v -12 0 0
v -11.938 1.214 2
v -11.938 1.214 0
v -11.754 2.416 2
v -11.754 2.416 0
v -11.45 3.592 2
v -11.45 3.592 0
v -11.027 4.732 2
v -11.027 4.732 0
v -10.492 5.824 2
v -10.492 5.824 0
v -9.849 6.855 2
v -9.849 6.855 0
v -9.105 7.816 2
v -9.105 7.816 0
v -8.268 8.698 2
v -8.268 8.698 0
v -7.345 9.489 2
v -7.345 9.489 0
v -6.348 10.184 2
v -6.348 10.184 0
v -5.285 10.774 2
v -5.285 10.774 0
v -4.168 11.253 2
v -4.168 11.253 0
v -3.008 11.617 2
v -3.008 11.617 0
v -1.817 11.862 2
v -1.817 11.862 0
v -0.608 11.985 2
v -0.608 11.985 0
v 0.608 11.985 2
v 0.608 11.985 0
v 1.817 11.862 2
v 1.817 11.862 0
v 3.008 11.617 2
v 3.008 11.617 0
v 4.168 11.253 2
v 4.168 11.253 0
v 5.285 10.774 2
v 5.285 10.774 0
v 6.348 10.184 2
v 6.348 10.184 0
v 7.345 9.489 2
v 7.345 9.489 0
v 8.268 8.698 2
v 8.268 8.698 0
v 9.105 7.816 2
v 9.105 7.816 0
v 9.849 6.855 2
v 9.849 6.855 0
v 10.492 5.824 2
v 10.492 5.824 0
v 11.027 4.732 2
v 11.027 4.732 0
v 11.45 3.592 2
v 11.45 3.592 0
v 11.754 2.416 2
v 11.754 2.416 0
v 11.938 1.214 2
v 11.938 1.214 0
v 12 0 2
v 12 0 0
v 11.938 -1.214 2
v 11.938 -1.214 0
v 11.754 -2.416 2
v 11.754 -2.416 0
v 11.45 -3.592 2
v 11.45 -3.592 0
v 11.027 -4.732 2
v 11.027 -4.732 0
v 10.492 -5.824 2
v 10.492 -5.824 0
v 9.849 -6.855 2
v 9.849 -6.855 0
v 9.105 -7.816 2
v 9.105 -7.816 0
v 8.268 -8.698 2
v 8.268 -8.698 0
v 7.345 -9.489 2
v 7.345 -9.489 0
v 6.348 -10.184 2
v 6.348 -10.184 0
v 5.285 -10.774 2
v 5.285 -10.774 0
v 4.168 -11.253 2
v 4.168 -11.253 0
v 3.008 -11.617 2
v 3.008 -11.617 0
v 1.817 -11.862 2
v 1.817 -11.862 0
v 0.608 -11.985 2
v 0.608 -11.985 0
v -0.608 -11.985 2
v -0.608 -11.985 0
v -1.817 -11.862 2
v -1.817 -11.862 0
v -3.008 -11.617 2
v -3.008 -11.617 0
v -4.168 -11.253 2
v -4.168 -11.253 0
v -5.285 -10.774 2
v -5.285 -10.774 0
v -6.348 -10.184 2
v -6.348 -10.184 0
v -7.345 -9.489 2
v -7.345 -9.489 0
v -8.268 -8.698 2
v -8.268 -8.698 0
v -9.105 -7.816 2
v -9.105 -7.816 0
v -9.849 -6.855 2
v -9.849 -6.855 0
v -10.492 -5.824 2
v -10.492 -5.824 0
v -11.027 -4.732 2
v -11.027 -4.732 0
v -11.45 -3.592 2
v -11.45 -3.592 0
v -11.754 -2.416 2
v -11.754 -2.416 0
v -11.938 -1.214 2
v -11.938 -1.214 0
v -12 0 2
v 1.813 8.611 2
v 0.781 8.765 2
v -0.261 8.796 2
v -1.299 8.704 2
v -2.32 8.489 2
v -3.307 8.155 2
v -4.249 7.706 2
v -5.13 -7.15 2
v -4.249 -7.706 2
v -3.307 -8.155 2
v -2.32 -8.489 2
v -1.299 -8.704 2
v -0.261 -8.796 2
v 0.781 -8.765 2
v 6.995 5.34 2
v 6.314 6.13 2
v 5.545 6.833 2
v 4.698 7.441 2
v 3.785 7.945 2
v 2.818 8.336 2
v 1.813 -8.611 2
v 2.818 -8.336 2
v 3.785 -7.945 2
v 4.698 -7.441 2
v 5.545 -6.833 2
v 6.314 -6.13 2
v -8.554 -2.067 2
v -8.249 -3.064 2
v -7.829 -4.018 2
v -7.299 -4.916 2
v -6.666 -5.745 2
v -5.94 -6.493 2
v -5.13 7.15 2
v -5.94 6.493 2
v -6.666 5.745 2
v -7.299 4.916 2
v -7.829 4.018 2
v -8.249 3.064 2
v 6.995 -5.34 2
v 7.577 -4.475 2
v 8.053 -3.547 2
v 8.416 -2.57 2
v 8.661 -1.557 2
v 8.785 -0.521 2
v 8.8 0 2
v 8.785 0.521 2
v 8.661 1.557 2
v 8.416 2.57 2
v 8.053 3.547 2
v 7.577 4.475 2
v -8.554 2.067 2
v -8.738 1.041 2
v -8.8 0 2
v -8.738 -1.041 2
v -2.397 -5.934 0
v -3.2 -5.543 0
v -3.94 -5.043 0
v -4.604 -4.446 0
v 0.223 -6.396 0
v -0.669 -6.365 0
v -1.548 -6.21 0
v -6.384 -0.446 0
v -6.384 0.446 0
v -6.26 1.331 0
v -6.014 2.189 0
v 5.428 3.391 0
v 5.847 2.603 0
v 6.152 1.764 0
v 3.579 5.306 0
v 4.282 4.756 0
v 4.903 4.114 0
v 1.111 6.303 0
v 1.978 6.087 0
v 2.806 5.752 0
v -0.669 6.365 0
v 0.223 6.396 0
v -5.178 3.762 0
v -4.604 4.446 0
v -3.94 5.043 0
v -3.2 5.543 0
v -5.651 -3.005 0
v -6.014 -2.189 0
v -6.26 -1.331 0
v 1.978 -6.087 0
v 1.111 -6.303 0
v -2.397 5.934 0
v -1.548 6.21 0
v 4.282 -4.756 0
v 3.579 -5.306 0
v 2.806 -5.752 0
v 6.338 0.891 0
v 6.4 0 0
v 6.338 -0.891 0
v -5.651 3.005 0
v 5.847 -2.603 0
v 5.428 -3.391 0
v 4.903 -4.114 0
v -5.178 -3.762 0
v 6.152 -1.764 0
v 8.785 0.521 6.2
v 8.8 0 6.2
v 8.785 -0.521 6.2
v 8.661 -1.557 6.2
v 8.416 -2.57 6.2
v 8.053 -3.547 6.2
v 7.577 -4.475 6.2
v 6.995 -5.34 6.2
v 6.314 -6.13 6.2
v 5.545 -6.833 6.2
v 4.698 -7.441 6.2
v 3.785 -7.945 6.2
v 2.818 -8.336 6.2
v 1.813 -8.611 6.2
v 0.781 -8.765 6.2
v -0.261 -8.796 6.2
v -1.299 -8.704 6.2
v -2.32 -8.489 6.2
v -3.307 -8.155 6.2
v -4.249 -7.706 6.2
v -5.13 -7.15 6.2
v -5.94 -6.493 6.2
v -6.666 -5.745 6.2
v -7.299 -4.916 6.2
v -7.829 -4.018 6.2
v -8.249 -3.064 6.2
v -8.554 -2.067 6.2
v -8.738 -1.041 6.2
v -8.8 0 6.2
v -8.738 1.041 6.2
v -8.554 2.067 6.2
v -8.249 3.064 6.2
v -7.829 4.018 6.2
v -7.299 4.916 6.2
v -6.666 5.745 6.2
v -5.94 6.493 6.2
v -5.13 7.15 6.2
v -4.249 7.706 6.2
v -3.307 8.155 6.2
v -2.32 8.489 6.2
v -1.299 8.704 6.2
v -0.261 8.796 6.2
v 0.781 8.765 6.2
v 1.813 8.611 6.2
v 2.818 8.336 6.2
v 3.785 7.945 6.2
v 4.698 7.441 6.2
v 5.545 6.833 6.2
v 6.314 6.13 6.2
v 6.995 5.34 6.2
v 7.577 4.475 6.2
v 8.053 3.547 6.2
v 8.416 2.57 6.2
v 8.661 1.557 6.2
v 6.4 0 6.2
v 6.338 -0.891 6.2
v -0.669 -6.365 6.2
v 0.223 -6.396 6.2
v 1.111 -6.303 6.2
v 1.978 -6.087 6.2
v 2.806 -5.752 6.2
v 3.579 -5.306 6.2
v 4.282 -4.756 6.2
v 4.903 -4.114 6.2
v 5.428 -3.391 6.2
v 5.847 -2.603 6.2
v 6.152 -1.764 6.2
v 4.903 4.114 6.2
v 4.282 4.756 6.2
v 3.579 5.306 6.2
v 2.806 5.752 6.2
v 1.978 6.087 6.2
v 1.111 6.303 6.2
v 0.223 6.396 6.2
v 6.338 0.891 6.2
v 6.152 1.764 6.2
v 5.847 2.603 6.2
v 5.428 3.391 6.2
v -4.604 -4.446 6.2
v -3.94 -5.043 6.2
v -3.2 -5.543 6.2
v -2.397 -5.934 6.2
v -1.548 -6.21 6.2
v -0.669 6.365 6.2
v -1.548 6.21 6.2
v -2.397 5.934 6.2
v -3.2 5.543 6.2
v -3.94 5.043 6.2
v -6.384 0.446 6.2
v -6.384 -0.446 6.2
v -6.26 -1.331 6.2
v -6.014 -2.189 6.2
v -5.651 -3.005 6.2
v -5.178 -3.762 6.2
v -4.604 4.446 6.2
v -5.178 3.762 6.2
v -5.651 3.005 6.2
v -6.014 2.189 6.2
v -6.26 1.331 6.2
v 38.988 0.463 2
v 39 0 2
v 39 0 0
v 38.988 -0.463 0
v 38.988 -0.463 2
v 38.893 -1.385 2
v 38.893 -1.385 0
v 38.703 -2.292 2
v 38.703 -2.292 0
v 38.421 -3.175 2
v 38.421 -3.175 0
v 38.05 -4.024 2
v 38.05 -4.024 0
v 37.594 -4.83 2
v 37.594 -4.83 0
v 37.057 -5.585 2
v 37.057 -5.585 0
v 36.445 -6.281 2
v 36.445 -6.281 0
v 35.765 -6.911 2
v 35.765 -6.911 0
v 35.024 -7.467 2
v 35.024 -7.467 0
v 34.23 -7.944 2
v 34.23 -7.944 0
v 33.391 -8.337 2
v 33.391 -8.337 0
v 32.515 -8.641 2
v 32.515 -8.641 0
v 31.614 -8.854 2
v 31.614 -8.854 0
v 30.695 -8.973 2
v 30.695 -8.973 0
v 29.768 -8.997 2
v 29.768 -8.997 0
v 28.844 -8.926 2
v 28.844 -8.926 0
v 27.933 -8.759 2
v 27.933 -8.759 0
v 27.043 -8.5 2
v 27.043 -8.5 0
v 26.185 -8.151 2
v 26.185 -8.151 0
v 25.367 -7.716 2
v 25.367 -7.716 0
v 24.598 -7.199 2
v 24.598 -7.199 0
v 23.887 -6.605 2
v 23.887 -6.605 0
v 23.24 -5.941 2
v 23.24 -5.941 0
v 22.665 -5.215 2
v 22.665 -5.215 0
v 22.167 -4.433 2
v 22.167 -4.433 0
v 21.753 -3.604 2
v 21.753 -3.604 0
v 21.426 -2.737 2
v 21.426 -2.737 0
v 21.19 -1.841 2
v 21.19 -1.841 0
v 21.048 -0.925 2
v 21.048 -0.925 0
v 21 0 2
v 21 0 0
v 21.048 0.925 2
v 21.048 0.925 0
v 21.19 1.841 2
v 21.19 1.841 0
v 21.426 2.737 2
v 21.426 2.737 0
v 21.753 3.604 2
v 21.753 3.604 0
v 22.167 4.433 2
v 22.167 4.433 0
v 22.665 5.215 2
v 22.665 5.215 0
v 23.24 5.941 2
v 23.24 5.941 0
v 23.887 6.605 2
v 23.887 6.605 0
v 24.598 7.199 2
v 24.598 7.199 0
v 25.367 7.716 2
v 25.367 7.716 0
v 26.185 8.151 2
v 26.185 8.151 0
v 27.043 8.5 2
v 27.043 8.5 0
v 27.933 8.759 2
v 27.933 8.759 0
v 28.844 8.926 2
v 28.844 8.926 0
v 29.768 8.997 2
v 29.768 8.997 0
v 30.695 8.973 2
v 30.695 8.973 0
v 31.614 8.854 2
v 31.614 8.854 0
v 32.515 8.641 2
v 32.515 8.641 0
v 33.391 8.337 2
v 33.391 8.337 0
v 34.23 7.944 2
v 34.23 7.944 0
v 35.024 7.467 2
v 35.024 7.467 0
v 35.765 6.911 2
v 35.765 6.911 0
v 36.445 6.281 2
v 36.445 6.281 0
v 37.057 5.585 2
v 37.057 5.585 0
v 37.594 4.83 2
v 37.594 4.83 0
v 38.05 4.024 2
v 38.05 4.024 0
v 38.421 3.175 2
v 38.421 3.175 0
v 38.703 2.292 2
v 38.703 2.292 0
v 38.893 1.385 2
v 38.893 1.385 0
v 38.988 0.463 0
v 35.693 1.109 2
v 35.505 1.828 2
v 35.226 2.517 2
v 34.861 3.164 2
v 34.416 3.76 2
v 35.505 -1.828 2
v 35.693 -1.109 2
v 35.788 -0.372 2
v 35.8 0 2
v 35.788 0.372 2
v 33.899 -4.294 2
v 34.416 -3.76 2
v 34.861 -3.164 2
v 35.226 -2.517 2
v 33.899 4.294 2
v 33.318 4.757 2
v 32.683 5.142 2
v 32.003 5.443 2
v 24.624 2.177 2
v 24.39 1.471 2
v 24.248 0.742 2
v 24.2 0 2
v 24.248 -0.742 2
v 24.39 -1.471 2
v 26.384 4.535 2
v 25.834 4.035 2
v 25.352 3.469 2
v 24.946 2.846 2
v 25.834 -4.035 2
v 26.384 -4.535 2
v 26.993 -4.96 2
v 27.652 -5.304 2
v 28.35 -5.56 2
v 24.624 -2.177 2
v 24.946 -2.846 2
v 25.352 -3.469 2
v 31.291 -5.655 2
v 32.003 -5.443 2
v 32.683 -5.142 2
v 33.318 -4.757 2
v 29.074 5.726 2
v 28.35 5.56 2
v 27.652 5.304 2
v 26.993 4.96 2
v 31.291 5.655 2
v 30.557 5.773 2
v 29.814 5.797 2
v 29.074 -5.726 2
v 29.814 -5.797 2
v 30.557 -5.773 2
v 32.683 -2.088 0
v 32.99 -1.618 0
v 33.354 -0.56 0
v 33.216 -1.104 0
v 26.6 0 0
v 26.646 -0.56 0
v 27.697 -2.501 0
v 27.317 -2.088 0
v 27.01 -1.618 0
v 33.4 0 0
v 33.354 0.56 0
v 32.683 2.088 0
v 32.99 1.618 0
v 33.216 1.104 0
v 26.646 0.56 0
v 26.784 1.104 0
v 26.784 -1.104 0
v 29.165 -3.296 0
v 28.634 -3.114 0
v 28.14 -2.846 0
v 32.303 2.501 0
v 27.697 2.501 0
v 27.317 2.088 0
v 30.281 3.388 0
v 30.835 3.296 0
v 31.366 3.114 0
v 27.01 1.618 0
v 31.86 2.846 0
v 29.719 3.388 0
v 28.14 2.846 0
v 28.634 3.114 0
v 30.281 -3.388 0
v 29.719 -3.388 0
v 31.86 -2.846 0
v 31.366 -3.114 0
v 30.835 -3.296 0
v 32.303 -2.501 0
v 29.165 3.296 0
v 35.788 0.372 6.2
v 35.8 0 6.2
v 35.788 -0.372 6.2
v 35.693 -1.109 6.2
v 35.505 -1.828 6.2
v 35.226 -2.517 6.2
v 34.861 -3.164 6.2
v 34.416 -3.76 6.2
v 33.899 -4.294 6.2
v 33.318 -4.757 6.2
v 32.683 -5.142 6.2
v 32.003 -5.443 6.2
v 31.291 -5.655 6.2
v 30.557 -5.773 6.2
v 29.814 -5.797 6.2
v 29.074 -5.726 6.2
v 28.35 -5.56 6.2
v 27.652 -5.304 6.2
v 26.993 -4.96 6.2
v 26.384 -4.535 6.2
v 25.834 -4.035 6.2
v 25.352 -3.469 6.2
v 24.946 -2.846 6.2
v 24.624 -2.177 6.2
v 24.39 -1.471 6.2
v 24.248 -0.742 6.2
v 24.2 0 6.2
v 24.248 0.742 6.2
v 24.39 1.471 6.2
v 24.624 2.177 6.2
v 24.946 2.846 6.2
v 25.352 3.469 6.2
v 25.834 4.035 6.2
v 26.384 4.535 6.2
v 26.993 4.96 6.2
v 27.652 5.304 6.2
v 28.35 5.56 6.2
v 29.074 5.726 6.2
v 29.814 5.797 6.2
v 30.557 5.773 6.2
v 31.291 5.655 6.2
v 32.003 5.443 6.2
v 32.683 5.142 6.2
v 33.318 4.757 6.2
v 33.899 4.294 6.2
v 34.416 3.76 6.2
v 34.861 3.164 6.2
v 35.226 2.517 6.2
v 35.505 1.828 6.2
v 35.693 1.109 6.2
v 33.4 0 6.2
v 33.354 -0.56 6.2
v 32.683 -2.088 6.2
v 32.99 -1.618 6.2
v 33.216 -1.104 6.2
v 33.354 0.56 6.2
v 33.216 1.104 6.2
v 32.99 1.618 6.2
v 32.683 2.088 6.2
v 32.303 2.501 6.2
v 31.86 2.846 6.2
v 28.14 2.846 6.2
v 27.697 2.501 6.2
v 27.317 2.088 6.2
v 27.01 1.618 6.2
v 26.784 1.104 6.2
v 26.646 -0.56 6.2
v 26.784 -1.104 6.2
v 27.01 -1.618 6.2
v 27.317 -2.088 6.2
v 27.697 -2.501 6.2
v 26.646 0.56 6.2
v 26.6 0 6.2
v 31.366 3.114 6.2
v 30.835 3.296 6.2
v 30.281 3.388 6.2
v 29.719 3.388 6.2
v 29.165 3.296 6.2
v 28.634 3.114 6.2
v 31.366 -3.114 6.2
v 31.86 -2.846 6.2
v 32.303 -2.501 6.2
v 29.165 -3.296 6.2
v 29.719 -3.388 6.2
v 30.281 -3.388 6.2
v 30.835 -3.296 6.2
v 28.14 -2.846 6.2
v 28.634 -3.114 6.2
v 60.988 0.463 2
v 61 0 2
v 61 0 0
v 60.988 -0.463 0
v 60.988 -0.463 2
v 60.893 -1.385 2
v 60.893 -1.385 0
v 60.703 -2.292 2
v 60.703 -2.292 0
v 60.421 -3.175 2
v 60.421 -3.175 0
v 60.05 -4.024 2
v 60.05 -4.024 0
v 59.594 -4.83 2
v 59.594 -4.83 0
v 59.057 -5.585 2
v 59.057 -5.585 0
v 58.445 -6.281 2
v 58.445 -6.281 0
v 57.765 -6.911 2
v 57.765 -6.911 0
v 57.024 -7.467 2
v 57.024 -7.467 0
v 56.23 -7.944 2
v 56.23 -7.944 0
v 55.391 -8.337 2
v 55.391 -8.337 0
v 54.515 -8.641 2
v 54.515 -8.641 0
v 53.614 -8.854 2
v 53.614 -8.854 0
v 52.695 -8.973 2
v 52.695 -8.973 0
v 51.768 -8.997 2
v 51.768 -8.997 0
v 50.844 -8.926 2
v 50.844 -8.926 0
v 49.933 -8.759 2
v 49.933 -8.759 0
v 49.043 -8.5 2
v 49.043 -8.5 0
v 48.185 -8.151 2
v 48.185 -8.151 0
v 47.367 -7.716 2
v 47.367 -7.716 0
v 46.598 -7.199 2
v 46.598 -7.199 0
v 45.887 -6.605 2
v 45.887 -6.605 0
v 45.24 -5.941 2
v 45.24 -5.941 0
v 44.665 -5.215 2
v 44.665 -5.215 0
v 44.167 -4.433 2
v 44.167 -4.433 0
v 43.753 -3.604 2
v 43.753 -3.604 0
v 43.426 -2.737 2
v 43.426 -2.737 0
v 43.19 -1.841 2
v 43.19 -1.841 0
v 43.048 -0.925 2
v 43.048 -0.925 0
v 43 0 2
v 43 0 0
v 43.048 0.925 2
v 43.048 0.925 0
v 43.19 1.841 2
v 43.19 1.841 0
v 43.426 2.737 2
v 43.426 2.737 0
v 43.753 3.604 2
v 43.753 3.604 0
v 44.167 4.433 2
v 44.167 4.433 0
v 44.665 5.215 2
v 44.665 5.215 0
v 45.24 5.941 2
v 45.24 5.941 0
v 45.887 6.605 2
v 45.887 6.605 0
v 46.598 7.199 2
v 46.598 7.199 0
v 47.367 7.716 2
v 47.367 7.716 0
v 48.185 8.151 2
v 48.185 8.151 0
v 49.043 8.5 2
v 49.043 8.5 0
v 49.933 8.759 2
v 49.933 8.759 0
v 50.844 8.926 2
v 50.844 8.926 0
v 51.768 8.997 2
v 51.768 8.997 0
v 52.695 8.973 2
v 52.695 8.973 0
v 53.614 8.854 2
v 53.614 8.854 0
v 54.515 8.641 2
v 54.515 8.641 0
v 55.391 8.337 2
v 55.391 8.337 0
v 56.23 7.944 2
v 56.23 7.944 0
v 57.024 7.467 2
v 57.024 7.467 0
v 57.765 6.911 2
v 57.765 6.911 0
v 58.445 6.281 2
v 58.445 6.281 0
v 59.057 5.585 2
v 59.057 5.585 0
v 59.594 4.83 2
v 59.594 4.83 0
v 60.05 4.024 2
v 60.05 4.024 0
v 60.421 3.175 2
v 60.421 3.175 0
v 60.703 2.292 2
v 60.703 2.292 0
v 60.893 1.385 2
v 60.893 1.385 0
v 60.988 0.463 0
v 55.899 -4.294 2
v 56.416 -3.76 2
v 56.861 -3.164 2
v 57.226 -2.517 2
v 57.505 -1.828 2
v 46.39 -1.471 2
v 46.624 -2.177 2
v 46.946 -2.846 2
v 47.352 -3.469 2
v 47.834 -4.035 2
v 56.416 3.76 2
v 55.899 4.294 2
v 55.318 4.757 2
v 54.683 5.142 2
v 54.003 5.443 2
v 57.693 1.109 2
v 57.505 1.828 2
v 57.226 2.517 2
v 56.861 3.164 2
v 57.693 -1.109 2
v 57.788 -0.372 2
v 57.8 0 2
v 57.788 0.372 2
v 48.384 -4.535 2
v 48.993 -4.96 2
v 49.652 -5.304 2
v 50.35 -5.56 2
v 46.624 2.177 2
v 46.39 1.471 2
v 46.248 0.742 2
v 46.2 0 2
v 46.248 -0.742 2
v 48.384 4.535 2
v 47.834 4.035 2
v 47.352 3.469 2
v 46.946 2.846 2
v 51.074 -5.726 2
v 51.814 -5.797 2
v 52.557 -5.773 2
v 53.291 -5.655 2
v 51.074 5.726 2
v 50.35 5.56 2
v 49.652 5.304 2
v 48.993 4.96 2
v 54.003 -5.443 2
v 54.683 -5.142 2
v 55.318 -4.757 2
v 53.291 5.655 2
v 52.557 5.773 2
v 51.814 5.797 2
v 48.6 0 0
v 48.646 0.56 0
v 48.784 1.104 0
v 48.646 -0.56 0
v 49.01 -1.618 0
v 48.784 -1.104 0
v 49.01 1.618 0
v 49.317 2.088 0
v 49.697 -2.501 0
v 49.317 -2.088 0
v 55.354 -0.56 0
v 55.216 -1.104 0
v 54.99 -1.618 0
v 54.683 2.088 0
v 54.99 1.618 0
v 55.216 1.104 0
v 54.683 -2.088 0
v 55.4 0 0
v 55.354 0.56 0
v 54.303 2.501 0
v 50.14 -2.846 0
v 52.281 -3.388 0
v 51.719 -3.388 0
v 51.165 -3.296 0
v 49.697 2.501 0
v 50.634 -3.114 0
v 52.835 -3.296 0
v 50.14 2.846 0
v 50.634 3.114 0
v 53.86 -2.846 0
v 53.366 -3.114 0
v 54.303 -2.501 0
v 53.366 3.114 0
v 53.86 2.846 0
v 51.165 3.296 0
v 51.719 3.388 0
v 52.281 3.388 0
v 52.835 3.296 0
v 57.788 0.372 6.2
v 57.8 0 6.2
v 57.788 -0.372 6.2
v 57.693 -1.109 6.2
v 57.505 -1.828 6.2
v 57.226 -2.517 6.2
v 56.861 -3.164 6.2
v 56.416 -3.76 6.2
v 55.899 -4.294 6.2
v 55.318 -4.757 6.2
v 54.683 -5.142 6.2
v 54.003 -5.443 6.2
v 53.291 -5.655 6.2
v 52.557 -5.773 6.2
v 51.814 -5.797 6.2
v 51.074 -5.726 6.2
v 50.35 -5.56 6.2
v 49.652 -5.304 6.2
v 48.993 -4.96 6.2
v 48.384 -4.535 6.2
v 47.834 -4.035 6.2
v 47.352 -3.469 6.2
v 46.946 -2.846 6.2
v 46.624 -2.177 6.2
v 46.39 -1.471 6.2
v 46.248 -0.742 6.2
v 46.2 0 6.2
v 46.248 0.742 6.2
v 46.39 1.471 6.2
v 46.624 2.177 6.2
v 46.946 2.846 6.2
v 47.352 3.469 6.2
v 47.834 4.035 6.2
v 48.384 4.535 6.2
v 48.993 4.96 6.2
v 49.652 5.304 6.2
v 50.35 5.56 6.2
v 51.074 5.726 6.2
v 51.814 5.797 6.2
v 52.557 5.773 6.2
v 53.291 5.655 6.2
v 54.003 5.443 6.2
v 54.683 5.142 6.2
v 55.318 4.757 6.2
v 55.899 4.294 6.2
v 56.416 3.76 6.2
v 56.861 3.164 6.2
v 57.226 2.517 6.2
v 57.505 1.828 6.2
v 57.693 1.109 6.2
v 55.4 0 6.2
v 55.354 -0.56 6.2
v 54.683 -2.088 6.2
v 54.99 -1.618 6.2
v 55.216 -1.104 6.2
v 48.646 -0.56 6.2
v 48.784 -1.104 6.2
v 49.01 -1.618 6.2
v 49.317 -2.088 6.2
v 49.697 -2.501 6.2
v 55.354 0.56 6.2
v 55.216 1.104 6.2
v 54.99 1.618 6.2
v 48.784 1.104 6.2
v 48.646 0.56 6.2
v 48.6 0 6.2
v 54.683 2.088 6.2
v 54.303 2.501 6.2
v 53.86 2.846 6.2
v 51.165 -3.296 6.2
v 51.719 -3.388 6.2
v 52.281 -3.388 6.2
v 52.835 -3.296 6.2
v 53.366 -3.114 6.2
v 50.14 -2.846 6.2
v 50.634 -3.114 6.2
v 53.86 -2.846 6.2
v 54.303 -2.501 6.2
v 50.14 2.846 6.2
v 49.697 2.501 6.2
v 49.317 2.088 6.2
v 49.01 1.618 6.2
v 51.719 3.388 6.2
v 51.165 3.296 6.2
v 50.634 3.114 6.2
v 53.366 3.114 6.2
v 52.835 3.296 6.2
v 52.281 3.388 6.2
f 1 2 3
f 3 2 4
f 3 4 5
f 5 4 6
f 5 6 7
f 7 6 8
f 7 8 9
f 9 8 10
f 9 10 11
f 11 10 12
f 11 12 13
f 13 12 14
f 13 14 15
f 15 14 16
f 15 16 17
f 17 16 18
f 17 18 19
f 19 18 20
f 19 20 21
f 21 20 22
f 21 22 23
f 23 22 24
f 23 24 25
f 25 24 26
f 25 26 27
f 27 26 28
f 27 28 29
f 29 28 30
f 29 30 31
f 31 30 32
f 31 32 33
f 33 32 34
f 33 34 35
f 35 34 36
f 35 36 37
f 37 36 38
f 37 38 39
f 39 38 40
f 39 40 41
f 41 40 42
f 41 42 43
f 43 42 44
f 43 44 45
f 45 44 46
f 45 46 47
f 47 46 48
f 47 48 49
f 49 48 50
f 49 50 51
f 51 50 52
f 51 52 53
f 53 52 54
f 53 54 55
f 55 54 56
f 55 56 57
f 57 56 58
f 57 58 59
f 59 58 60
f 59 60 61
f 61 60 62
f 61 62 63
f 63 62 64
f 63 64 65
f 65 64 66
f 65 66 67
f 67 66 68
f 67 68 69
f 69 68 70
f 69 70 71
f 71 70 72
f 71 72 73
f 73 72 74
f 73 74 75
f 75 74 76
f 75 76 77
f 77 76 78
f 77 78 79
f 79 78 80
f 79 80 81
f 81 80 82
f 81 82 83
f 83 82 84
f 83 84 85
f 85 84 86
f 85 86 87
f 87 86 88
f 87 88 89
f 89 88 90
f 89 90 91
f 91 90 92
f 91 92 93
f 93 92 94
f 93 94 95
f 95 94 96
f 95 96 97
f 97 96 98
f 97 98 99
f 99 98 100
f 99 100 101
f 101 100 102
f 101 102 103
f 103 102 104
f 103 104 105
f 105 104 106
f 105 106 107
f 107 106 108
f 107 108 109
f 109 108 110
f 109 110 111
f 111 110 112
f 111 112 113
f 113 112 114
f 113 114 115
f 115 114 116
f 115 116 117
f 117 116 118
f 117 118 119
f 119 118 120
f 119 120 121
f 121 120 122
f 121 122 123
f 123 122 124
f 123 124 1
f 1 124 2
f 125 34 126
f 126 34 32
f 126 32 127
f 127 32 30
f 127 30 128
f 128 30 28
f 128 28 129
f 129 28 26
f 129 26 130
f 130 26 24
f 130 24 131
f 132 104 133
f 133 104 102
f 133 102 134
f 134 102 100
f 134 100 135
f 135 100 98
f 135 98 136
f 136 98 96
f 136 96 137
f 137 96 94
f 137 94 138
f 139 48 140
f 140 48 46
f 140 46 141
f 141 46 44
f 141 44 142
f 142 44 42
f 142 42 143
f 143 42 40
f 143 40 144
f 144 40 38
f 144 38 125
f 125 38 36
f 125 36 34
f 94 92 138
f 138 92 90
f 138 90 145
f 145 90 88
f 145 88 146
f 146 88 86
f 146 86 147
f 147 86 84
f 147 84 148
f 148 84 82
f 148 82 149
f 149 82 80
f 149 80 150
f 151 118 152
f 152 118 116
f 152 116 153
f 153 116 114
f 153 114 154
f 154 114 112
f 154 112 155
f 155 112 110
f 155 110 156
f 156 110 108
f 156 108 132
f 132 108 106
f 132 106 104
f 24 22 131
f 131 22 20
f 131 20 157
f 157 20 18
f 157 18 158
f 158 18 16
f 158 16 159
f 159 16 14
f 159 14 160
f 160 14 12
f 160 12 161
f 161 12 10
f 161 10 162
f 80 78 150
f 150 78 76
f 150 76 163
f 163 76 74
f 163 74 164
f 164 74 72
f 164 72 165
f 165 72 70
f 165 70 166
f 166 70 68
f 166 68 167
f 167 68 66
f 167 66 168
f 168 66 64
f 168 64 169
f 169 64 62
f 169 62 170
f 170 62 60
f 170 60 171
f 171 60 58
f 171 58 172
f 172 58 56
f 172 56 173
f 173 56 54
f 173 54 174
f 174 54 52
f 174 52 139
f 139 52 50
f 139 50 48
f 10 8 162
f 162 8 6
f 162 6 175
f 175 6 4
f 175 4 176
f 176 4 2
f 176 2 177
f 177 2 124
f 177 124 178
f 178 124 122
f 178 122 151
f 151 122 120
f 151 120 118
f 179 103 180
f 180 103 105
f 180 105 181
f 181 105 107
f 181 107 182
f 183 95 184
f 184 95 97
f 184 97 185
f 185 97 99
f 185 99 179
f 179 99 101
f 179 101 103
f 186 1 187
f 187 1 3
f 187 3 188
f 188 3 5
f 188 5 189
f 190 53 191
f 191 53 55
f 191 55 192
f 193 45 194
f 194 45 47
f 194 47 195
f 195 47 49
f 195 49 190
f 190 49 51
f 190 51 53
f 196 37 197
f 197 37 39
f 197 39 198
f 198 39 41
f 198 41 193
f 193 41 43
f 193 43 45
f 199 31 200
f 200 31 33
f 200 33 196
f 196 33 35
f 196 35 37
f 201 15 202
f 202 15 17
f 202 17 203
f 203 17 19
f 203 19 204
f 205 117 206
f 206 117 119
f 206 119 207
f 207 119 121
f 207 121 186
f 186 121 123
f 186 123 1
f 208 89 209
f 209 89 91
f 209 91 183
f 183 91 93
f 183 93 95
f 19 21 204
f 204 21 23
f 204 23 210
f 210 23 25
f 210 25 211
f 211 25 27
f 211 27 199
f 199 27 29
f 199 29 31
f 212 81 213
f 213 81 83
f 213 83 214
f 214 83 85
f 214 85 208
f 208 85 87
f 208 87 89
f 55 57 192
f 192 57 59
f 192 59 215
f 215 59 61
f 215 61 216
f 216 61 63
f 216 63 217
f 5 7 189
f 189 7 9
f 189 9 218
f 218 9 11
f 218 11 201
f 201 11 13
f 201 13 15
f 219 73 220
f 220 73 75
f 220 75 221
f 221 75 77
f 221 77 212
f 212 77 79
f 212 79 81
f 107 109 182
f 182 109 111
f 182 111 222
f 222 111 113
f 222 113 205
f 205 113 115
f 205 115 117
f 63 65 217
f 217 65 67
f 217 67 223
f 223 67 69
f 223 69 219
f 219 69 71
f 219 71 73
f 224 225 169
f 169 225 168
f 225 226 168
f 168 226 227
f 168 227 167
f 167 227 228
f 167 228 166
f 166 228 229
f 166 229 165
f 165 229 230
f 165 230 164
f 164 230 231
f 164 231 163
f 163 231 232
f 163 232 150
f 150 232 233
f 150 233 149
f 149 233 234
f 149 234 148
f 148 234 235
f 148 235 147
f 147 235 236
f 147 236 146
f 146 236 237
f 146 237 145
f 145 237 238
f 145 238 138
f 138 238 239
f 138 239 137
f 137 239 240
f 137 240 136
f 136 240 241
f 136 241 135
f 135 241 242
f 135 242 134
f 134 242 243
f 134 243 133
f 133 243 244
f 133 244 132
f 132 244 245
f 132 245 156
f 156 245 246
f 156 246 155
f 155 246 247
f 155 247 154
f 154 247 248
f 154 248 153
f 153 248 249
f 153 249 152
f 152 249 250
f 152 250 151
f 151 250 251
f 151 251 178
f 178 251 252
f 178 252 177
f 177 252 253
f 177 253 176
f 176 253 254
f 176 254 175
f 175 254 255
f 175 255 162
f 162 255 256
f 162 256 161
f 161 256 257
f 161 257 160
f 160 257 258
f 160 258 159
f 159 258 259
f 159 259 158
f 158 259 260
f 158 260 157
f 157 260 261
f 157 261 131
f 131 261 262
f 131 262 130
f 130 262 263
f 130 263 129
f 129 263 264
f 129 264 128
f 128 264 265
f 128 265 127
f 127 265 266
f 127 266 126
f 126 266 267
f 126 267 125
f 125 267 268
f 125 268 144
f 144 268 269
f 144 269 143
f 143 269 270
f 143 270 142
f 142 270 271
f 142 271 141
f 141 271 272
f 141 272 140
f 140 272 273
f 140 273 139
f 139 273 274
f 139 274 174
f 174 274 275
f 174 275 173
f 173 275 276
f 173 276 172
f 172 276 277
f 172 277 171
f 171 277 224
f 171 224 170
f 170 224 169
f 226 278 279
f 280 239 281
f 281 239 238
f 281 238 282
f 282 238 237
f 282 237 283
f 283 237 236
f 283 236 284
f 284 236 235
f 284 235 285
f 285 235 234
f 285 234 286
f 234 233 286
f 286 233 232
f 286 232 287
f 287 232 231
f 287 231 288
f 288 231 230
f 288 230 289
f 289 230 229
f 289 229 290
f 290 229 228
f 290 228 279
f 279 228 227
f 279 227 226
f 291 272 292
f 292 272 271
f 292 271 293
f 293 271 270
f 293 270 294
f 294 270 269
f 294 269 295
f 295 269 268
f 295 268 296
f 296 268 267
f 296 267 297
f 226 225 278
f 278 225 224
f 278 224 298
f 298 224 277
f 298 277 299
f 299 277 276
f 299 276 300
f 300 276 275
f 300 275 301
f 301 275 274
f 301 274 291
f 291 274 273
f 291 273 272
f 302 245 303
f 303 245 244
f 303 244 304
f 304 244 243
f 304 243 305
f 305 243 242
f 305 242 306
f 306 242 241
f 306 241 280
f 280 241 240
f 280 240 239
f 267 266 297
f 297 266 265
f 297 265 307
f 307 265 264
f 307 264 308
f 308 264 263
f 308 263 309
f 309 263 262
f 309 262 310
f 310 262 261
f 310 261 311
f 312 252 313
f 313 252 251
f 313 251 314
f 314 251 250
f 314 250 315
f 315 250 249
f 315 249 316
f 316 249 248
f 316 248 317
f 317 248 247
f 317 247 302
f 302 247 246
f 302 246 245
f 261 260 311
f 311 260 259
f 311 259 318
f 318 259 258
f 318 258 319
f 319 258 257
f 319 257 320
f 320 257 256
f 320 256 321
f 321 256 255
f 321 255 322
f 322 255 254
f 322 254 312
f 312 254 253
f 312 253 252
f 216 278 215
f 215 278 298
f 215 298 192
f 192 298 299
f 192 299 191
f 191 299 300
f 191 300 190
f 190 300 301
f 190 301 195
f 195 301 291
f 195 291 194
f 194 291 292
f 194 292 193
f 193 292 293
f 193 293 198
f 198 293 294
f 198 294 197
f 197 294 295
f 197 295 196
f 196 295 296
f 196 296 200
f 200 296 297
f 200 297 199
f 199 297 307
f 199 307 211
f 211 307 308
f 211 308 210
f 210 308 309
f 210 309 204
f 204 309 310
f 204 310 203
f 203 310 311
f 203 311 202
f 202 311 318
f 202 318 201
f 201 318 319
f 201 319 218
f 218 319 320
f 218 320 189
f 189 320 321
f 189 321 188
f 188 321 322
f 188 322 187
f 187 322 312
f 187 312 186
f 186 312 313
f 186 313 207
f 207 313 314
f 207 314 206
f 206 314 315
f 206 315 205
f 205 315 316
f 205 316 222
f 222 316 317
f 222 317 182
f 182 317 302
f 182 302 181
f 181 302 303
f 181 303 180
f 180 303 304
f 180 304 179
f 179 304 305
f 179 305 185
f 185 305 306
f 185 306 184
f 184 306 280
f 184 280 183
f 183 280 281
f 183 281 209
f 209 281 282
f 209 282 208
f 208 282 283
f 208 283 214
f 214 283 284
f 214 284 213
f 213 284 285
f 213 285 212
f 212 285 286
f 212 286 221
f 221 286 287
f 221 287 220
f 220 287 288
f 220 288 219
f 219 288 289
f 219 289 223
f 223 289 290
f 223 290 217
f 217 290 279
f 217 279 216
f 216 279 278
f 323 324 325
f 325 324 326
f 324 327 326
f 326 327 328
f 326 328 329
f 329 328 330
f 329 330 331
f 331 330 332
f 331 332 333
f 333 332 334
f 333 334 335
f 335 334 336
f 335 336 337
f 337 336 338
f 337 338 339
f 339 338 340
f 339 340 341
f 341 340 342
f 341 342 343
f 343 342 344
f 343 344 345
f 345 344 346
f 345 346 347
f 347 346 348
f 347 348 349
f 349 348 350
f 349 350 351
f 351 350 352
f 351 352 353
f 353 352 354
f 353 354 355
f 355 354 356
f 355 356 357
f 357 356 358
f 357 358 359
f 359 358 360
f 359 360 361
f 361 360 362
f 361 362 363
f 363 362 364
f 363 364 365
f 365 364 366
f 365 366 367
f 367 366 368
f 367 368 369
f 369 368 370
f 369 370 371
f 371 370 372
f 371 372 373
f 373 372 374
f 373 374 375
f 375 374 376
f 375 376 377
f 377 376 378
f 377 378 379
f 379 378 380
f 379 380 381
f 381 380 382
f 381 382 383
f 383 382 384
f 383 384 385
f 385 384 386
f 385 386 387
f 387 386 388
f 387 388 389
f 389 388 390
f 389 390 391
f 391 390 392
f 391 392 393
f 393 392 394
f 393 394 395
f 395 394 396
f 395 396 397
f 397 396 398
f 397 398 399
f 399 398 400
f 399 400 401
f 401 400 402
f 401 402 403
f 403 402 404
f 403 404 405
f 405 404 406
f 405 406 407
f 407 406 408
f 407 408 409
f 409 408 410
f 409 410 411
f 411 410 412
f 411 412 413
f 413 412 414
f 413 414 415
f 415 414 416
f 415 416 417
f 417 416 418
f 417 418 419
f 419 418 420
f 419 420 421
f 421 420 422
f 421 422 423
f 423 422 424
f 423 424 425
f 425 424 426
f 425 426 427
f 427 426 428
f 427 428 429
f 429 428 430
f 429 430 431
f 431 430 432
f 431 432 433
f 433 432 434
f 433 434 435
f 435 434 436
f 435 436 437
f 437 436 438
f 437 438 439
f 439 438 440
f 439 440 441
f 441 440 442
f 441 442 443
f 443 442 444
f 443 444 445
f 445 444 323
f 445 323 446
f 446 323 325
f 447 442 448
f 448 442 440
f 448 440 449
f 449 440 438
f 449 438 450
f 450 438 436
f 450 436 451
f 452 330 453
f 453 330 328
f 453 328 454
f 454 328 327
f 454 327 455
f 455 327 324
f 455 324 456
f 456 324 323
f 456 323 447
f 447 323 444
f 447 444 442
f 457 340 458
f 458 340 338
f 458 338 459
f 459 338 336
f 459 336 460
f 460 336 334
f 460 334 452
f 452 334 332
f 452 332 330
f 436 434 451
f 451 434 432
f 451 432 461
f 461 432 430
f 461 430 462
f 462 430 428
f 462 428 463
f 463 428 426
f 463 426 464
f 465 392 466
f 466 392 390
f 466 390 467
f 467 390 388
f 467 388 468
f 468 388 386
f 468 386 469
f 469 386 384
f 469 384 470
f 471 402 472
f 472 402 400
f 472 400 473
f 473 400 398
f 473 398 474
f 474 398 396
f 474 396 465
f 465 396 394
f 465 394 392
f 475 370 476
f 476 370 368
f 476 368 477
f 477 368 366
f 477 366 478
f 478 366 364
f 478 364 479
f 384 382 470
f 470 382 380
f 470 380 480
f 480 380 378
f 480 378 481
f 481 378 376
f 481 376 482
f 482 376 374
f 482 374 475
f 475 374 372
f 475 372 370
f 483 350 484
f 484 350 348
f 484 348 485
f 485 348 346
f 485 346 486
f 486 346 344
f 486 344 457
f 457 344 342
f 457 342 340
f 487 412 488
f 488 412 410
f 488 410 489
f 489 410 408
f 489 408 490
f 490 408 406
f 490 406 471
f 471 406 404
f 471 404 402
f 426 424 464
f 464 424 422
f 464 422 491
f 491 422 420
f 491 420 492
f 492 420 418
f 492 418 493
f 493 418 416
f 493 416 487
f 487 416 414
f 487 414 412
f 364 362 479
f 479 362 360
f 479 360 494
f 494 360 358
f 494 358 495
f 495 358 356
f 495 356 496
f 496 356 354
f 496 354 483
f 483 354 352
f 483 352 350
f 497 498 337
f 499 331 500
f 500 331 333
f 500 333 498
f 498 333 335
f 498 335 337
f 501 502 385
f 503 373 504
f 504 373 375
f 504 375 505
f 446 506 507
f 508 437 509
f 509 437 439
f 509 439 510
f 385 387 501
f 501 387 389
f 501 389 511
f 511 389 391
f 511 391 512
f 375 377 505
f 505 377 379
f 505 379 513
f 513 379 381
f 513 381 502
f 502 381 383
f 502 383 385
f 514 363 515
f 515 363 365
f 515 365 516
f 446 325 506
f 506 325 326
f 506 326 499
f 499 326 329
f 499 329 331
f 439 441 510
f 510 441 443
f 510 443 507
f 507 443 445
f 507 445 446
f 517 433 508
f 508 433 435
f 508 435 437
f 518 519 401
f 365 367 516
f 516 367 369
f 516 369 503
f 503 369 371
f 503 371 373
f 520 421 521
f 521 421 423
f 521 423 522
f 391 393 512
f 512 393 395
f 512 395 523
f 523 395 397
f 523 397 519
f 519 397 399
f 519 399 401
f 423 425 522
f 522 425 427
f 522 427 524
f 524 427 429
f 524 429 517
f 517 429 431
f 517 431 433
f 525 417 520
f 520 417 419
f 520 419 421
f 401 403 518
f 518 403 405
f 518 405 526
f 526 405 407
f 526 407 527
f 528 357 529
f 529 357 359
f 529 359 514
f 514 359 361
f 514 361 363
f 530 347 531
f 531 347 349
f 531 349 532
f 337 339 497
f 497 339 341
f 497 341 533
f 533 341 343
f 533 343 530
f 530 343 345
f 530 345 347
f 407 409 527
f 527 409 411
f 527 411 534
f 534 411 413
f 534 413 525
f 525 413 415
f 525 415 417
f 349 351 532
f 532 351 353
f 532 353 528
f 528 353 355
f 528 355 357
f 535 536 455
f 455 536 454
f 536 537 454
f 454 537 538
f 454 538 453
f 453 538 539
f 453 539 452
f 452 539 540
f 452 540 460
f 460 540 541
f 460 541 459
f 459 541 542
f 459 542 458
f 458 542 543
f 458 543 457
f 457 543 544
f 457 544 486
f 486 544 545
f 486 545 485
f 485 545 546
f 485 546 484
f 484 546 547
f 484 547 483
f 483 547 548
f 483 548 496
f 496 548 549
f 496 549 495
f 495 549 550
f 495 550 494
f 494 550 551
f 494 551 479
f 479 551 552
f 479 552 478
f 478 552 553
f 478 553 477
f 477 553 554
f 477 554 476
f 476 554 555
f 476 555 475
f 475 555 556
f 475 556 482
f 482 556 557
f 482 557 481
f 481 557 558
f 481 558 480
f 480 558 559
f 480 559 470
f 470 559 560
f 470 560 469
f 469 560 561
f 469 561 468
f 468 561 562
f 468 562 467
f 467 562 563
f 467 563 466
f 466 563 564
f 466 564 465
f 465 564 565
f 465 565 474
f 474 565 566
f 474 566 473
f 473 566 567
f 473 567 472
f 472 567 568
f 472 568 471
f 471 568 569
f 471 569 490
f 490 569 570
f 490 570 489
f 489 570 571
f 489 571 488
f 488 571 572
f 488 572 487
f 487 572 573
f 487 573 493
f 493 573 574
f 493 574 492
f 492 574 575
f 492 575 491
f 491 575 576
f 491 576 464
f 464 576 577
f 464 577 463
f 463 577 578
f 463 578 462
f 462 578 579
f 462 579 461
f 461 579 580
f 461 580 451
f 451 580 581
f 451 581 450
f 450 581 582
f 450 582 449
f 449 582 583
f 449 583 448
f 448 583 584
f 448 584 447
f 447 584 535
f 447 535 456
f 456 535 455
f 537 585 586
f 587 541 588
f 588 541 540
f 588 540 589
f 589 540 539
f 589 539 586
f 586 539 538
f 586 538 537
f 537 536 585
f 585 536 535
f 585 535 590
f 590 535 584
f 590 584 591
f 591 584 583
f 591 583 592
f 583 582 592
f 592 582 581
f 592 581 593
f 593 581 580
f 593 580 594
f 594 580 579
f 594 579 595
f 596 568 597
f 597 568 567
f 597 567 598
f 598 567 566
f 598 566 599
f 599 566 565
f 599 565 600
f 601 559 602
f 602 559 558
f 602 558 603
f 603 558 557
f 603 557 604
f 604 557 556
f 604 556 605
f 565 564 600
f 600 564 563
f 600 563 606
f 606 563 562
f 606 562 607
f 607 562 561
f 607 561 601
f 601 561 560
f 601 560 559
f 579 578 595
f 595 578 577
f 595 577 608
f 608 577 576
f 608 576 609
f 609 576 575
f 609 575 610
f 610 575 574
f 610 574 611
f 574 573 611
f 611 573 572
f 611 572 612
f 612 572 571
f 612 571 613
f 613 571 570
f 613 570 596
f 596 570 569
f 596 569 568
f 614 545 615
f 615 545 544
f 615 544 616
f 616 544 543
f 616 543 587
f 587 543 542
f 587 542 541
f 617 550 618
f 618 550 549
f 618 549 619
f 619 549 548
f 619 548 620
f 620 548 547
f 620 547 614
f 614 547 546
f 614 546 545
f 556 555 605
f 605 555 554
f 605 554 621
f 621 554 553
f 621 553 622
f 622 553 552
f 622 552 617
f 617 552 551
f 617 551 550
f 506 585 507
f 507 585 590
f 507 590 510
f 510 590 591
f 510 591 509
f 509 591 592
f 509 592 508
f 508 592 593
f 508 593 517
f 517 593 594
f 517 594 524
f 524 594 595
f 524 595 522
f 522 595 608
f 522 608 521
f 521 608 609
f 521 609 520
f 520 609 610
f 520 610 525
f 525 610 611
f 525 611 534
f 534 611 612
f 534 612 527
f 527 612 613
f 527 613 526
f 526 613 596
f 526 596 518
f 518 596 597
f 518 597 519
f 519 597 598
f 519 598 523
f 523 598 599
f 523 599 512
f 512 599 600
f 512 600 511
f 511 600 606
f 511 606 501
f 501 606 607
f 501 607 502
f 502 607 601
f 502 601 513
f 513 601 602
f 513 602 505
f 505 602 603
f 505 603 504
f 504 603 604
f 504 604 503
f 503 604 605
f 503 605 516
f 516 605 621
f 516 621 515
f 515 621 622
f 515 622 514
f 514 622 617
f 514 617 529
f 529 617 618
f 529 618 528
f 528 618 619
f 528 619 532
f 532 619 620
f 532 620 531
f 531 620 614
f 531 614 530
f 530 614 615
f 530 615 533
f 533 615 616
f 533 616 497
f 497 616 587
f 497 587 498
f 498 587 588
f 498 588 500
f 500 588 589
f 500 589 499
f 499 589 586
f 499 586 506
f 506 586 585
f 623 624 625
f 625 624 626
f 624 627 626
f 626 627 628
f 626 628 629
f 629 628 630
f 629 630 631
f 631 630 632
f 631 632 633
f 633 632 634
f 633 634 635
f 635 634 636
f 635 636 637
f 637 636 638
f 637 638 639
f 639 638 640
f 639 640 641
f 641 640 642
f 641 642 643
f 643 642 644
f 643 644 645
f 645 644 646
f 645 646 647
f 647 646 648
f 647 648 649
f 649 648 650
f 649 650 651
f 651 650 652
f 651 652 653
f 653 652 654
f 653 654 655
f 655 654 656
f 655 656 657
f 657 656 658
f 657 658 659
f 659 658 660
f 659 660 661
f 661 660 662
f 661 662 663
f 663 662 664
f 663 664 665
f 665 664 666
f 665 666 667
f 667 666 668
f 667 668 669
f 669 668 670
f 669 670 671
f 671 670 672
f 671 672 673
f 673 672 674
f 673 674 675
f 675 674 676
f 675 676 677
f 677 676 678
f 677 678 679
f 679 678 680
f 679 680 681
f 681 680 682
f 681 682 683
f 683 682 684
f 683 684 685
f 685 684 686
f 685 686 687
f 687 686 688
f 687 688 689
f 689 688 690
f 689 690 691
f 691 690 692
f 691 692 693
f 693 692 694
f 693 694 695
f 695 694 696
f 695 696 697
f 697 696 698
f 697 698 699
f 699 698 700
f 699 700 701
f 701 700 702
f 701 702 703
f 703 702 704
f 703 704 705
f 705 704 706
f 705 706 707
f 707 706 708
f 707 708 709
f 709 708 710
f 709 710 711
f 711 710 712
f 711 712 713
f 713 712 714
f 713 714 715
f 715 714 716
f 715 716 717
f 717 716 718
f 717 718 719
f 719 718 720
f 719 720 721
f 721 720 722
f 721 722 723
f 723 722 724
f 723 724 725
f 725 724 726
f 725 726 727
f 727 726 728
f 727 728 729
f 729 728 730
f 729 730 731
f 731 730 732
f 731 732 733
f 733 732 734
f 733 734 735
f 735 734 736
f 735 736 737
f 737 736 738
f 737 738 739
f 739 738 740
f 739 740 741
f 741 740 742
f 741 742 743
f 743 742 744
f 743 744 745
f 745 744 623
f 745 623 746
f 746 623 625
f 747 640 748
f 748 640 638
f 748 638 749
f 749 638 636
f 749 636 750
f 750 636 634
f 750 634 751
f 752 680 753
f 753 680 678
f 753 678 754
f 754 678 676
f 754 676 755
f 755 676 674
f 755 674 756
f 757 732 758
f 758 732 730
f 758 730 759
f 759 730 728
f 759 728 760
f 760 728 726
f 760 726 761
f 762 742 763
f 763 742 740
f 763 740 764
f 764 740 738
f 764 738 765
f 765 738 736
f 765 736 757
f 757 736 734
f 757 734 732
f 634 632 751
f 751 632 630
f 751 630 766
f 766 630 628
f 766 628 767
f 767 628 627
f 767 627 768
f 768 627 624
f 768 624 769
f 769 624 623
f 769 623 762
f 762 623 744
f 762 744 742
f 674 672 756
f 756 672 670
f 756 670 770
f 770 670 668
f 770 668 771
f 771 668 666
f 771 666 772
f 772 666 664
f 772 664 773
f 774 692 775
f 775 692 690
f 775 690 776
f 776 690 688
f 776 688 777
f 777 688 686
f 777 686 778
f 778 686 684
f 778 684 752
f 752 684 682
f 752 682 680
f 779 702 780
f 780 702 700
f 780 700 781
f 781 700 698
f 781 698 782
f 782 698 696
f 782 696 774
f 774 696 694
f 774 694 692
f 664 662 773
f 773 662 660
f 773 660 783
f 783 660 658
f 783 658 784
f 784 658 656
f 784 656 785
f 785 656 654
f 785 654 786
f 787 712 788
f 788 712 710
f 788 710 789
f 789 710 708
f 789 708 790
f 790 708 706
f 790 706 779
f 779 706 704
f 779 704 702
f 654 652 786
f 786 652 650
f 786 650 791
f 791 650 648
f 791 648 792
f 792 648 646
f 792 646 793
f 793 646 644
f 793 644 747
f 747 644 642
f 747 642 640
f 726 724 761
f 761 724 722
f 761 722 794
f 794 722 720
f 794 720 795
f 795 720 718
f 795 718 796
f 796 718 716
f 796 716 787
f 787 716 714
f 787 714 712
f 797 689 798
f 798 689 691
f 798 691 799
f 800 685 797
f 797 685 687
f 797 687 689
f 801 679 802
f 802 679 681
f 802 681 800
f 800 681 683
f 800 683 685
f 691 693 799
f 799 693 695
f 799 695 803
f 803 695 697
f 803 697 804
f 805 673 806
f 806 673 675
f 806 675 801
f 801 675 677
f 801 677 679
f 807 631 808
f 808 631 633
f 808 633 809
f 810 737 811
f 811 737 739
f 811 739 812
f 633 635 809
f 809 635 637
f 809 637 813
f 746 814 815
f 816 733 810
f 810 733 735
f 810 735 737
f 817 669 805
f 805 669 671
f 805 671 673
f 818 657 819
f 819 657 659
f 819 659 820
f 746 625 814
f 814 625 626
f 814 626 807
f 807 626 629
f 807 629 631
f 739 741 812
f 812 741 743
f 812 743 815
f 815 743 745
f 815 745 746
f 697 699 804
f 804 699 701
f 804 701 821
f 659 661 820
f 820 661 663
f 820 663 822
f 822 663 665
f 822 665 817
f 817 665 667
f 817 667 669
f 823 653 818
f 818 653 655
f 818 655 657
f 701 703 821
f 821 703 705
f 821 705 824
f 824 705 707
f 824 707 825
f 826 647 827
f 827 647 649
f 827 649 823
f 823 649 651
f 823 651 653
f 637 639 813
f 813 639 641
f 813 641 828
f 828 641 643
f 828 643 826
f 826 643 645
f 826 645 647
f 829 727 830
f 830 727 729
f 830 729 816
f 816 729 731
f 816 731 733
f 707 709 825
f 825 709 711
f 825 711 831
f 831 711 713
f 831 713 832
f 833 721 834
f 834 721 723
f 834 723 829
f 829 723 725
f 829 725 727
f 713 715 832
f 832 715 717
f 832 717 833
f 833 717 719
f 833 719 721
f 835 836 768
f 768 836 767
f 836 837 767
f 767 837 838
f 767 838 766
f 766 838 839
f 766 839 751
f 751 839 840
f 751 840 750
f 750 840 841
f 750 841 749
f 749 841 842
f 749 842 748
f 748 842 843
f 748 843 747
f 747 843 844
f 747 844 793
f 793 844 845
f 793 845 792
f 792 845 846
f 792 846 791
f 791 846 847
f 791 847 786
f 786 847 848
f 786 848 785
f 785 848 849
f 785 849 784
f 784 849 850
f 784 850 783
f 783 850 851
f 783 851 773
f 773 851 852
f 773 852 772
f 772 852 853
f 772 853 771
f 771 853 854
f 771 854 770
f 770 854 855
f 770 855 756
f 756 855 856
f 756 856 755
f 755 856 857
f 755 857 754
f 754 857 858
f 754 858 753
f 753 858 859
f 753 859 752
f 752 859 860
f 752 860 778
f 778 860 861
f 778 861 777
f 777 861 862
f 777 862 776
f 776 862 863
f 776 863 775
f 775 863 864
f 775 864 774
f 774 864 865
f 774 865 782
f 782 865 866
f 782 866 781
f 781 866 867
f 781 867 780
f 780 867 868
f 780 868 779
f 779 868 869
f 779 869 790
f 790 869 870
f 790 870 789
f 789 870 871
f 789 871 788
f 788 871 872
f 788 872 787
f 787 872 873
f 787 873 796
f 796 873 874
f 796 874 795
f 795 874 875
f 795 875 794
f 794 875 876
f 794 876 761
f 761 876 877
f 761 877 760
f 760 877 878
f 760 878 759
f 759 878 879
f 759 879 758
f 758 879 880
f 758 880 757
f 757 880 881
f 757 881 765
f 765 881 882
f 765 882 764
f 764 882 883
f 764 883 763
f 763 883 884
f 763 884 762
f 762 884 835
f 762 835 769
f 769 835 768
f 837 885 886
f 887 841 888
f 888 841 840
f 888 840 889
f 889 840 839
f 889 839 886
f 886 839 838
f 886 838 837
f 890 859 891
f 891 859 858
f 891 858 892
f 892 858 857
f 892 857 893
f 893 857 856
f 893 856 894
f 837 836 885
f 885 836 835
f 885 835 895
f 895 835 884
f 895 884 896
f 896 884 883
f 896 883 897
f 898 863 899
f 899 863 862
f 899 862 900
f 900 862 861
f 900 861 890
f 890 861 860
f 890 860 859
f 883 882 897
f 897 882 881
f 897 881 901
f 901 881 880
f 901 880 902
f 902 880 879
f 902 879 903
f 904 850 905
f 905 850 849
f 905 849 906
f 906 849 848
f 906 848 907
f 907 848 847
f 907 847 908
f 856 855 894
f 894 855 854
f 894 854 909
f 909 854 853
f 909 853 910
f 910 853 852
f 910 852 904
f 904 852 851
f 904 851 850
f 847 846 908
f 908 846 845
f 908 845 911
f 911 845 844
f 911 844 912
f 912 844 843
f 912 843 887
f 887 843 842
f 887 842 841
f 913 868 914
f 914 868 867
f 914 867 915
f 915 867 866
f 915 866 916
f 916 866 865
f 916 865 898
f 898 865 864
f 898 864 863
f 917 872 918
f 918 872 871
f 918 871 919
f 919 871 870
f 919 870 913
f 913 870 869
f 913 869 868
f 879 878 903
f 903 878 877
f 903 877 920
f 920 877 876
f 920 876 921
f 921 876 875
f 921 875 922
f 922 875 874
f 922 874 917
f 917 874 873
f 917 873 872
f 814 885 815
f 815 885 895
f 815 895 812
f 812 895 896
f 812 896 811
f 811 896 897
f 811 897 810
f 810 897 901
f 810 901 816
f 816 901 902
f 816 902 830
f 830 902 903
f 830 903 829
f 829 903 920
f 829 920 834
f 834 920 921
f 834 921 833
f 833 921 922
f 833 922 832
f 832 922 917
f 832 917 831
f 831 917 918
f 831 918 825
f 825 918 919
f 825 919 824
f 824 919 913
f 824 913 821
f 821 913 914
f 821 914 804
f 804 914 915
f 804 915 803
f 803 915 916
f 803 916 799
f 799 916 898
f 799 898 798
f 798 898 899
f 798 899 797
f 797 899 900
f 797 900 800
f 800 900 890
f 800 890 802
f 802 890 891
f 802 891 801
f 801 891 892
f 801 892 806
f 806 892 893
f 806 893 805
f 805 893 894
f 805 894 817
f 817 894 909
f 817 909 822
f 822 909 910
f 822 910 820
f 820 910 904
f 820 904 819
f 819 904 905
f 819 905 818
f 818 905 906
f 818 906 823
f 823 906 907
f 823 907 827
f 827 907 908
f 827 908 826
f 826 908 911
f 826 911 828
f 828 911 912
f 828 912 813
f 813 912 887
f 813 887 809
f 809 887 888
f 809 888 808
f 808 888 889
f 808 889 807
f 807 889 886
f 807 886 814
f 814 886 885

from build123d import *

# Parameters (mm, degrees)
SKETCH1_R              = 12
LIPS_DEPTH             = 2
SKETCH1_R_2            = 9
LIPS_2_DEPTH           = 2
LIPS_3_DEPTH           = 2
SKETCH2_R              = 8.8
SKETCH2_R_2            = 5.8
NECKS_DEPTH            = 4.2
CABLE_BORES_DEPTH      = 63.477515956
CABLE_BORES_DEPTH_BACK = 63.477515956
SKETCH3_R              = 6.4
SKETCH3_R_2            = 3.4


with BuildPart() as part:
    # Sketch1 → Lips (new body)
    with BuildSketch(Plane.XY):
        Circle(SKETCH1_R)
    extrude(amount=LIPS_DEPTH)



with BuildPart() as body_2:
    # Sketch1 → Lips 2 (new body)
    with BuildSketch(Plane.XY):
        with Locations((30, 0)):
            Circle(SKETCH1_R_2)
    extrude(amount=LIPS_2_DEPTH)


with BuildPart() as body_3:
    # Sketch1 → Lips 3 (new body)
    with BuildSketch(Plane.XY):
        with Locations((52, 0)):
            Circle(SKETCH1_R_2)
    extrude(amount=LIPS_3_DEPTH)


with BuildPart() as part_1:
    add(part.part)

    add(body_2.part)  # Necks merges body 2

    add(body_3.part)  # Necks merges body 3
    # Sketch2 → Necks (add)
    with BuildSketch(Plane.XY.offset(2)):
        Circle(SKETCH2_R)
        with Locations((30, 0)):
            Circle(SKETCH2_R_2)
        with Locations((52, 0)):
            Circle(SKETCH2_R_2)
    extrude(amount=NECKS_DEPTH)

    # Sketch3 → Cable_bores (cut, two sides: drawn at the far end of the back side and taken through both)
    with BuildSketch(Plane.XY.offset(-CABLE_BORES_DEPTH_BACK)):
        Circle(SKETCH3_R)
        with Locations((30, 0)):
            Circle(SKETCH3_R_2)
        with Locations((52, 0)):
            Circle(SKETCH3_R_2)
    extrude(amount=CABLE_BORES_DEPTH + CABLE_BORES_DEPTH_BACK, mode=Mode.SUBTRACT)


solid = part_1.part
